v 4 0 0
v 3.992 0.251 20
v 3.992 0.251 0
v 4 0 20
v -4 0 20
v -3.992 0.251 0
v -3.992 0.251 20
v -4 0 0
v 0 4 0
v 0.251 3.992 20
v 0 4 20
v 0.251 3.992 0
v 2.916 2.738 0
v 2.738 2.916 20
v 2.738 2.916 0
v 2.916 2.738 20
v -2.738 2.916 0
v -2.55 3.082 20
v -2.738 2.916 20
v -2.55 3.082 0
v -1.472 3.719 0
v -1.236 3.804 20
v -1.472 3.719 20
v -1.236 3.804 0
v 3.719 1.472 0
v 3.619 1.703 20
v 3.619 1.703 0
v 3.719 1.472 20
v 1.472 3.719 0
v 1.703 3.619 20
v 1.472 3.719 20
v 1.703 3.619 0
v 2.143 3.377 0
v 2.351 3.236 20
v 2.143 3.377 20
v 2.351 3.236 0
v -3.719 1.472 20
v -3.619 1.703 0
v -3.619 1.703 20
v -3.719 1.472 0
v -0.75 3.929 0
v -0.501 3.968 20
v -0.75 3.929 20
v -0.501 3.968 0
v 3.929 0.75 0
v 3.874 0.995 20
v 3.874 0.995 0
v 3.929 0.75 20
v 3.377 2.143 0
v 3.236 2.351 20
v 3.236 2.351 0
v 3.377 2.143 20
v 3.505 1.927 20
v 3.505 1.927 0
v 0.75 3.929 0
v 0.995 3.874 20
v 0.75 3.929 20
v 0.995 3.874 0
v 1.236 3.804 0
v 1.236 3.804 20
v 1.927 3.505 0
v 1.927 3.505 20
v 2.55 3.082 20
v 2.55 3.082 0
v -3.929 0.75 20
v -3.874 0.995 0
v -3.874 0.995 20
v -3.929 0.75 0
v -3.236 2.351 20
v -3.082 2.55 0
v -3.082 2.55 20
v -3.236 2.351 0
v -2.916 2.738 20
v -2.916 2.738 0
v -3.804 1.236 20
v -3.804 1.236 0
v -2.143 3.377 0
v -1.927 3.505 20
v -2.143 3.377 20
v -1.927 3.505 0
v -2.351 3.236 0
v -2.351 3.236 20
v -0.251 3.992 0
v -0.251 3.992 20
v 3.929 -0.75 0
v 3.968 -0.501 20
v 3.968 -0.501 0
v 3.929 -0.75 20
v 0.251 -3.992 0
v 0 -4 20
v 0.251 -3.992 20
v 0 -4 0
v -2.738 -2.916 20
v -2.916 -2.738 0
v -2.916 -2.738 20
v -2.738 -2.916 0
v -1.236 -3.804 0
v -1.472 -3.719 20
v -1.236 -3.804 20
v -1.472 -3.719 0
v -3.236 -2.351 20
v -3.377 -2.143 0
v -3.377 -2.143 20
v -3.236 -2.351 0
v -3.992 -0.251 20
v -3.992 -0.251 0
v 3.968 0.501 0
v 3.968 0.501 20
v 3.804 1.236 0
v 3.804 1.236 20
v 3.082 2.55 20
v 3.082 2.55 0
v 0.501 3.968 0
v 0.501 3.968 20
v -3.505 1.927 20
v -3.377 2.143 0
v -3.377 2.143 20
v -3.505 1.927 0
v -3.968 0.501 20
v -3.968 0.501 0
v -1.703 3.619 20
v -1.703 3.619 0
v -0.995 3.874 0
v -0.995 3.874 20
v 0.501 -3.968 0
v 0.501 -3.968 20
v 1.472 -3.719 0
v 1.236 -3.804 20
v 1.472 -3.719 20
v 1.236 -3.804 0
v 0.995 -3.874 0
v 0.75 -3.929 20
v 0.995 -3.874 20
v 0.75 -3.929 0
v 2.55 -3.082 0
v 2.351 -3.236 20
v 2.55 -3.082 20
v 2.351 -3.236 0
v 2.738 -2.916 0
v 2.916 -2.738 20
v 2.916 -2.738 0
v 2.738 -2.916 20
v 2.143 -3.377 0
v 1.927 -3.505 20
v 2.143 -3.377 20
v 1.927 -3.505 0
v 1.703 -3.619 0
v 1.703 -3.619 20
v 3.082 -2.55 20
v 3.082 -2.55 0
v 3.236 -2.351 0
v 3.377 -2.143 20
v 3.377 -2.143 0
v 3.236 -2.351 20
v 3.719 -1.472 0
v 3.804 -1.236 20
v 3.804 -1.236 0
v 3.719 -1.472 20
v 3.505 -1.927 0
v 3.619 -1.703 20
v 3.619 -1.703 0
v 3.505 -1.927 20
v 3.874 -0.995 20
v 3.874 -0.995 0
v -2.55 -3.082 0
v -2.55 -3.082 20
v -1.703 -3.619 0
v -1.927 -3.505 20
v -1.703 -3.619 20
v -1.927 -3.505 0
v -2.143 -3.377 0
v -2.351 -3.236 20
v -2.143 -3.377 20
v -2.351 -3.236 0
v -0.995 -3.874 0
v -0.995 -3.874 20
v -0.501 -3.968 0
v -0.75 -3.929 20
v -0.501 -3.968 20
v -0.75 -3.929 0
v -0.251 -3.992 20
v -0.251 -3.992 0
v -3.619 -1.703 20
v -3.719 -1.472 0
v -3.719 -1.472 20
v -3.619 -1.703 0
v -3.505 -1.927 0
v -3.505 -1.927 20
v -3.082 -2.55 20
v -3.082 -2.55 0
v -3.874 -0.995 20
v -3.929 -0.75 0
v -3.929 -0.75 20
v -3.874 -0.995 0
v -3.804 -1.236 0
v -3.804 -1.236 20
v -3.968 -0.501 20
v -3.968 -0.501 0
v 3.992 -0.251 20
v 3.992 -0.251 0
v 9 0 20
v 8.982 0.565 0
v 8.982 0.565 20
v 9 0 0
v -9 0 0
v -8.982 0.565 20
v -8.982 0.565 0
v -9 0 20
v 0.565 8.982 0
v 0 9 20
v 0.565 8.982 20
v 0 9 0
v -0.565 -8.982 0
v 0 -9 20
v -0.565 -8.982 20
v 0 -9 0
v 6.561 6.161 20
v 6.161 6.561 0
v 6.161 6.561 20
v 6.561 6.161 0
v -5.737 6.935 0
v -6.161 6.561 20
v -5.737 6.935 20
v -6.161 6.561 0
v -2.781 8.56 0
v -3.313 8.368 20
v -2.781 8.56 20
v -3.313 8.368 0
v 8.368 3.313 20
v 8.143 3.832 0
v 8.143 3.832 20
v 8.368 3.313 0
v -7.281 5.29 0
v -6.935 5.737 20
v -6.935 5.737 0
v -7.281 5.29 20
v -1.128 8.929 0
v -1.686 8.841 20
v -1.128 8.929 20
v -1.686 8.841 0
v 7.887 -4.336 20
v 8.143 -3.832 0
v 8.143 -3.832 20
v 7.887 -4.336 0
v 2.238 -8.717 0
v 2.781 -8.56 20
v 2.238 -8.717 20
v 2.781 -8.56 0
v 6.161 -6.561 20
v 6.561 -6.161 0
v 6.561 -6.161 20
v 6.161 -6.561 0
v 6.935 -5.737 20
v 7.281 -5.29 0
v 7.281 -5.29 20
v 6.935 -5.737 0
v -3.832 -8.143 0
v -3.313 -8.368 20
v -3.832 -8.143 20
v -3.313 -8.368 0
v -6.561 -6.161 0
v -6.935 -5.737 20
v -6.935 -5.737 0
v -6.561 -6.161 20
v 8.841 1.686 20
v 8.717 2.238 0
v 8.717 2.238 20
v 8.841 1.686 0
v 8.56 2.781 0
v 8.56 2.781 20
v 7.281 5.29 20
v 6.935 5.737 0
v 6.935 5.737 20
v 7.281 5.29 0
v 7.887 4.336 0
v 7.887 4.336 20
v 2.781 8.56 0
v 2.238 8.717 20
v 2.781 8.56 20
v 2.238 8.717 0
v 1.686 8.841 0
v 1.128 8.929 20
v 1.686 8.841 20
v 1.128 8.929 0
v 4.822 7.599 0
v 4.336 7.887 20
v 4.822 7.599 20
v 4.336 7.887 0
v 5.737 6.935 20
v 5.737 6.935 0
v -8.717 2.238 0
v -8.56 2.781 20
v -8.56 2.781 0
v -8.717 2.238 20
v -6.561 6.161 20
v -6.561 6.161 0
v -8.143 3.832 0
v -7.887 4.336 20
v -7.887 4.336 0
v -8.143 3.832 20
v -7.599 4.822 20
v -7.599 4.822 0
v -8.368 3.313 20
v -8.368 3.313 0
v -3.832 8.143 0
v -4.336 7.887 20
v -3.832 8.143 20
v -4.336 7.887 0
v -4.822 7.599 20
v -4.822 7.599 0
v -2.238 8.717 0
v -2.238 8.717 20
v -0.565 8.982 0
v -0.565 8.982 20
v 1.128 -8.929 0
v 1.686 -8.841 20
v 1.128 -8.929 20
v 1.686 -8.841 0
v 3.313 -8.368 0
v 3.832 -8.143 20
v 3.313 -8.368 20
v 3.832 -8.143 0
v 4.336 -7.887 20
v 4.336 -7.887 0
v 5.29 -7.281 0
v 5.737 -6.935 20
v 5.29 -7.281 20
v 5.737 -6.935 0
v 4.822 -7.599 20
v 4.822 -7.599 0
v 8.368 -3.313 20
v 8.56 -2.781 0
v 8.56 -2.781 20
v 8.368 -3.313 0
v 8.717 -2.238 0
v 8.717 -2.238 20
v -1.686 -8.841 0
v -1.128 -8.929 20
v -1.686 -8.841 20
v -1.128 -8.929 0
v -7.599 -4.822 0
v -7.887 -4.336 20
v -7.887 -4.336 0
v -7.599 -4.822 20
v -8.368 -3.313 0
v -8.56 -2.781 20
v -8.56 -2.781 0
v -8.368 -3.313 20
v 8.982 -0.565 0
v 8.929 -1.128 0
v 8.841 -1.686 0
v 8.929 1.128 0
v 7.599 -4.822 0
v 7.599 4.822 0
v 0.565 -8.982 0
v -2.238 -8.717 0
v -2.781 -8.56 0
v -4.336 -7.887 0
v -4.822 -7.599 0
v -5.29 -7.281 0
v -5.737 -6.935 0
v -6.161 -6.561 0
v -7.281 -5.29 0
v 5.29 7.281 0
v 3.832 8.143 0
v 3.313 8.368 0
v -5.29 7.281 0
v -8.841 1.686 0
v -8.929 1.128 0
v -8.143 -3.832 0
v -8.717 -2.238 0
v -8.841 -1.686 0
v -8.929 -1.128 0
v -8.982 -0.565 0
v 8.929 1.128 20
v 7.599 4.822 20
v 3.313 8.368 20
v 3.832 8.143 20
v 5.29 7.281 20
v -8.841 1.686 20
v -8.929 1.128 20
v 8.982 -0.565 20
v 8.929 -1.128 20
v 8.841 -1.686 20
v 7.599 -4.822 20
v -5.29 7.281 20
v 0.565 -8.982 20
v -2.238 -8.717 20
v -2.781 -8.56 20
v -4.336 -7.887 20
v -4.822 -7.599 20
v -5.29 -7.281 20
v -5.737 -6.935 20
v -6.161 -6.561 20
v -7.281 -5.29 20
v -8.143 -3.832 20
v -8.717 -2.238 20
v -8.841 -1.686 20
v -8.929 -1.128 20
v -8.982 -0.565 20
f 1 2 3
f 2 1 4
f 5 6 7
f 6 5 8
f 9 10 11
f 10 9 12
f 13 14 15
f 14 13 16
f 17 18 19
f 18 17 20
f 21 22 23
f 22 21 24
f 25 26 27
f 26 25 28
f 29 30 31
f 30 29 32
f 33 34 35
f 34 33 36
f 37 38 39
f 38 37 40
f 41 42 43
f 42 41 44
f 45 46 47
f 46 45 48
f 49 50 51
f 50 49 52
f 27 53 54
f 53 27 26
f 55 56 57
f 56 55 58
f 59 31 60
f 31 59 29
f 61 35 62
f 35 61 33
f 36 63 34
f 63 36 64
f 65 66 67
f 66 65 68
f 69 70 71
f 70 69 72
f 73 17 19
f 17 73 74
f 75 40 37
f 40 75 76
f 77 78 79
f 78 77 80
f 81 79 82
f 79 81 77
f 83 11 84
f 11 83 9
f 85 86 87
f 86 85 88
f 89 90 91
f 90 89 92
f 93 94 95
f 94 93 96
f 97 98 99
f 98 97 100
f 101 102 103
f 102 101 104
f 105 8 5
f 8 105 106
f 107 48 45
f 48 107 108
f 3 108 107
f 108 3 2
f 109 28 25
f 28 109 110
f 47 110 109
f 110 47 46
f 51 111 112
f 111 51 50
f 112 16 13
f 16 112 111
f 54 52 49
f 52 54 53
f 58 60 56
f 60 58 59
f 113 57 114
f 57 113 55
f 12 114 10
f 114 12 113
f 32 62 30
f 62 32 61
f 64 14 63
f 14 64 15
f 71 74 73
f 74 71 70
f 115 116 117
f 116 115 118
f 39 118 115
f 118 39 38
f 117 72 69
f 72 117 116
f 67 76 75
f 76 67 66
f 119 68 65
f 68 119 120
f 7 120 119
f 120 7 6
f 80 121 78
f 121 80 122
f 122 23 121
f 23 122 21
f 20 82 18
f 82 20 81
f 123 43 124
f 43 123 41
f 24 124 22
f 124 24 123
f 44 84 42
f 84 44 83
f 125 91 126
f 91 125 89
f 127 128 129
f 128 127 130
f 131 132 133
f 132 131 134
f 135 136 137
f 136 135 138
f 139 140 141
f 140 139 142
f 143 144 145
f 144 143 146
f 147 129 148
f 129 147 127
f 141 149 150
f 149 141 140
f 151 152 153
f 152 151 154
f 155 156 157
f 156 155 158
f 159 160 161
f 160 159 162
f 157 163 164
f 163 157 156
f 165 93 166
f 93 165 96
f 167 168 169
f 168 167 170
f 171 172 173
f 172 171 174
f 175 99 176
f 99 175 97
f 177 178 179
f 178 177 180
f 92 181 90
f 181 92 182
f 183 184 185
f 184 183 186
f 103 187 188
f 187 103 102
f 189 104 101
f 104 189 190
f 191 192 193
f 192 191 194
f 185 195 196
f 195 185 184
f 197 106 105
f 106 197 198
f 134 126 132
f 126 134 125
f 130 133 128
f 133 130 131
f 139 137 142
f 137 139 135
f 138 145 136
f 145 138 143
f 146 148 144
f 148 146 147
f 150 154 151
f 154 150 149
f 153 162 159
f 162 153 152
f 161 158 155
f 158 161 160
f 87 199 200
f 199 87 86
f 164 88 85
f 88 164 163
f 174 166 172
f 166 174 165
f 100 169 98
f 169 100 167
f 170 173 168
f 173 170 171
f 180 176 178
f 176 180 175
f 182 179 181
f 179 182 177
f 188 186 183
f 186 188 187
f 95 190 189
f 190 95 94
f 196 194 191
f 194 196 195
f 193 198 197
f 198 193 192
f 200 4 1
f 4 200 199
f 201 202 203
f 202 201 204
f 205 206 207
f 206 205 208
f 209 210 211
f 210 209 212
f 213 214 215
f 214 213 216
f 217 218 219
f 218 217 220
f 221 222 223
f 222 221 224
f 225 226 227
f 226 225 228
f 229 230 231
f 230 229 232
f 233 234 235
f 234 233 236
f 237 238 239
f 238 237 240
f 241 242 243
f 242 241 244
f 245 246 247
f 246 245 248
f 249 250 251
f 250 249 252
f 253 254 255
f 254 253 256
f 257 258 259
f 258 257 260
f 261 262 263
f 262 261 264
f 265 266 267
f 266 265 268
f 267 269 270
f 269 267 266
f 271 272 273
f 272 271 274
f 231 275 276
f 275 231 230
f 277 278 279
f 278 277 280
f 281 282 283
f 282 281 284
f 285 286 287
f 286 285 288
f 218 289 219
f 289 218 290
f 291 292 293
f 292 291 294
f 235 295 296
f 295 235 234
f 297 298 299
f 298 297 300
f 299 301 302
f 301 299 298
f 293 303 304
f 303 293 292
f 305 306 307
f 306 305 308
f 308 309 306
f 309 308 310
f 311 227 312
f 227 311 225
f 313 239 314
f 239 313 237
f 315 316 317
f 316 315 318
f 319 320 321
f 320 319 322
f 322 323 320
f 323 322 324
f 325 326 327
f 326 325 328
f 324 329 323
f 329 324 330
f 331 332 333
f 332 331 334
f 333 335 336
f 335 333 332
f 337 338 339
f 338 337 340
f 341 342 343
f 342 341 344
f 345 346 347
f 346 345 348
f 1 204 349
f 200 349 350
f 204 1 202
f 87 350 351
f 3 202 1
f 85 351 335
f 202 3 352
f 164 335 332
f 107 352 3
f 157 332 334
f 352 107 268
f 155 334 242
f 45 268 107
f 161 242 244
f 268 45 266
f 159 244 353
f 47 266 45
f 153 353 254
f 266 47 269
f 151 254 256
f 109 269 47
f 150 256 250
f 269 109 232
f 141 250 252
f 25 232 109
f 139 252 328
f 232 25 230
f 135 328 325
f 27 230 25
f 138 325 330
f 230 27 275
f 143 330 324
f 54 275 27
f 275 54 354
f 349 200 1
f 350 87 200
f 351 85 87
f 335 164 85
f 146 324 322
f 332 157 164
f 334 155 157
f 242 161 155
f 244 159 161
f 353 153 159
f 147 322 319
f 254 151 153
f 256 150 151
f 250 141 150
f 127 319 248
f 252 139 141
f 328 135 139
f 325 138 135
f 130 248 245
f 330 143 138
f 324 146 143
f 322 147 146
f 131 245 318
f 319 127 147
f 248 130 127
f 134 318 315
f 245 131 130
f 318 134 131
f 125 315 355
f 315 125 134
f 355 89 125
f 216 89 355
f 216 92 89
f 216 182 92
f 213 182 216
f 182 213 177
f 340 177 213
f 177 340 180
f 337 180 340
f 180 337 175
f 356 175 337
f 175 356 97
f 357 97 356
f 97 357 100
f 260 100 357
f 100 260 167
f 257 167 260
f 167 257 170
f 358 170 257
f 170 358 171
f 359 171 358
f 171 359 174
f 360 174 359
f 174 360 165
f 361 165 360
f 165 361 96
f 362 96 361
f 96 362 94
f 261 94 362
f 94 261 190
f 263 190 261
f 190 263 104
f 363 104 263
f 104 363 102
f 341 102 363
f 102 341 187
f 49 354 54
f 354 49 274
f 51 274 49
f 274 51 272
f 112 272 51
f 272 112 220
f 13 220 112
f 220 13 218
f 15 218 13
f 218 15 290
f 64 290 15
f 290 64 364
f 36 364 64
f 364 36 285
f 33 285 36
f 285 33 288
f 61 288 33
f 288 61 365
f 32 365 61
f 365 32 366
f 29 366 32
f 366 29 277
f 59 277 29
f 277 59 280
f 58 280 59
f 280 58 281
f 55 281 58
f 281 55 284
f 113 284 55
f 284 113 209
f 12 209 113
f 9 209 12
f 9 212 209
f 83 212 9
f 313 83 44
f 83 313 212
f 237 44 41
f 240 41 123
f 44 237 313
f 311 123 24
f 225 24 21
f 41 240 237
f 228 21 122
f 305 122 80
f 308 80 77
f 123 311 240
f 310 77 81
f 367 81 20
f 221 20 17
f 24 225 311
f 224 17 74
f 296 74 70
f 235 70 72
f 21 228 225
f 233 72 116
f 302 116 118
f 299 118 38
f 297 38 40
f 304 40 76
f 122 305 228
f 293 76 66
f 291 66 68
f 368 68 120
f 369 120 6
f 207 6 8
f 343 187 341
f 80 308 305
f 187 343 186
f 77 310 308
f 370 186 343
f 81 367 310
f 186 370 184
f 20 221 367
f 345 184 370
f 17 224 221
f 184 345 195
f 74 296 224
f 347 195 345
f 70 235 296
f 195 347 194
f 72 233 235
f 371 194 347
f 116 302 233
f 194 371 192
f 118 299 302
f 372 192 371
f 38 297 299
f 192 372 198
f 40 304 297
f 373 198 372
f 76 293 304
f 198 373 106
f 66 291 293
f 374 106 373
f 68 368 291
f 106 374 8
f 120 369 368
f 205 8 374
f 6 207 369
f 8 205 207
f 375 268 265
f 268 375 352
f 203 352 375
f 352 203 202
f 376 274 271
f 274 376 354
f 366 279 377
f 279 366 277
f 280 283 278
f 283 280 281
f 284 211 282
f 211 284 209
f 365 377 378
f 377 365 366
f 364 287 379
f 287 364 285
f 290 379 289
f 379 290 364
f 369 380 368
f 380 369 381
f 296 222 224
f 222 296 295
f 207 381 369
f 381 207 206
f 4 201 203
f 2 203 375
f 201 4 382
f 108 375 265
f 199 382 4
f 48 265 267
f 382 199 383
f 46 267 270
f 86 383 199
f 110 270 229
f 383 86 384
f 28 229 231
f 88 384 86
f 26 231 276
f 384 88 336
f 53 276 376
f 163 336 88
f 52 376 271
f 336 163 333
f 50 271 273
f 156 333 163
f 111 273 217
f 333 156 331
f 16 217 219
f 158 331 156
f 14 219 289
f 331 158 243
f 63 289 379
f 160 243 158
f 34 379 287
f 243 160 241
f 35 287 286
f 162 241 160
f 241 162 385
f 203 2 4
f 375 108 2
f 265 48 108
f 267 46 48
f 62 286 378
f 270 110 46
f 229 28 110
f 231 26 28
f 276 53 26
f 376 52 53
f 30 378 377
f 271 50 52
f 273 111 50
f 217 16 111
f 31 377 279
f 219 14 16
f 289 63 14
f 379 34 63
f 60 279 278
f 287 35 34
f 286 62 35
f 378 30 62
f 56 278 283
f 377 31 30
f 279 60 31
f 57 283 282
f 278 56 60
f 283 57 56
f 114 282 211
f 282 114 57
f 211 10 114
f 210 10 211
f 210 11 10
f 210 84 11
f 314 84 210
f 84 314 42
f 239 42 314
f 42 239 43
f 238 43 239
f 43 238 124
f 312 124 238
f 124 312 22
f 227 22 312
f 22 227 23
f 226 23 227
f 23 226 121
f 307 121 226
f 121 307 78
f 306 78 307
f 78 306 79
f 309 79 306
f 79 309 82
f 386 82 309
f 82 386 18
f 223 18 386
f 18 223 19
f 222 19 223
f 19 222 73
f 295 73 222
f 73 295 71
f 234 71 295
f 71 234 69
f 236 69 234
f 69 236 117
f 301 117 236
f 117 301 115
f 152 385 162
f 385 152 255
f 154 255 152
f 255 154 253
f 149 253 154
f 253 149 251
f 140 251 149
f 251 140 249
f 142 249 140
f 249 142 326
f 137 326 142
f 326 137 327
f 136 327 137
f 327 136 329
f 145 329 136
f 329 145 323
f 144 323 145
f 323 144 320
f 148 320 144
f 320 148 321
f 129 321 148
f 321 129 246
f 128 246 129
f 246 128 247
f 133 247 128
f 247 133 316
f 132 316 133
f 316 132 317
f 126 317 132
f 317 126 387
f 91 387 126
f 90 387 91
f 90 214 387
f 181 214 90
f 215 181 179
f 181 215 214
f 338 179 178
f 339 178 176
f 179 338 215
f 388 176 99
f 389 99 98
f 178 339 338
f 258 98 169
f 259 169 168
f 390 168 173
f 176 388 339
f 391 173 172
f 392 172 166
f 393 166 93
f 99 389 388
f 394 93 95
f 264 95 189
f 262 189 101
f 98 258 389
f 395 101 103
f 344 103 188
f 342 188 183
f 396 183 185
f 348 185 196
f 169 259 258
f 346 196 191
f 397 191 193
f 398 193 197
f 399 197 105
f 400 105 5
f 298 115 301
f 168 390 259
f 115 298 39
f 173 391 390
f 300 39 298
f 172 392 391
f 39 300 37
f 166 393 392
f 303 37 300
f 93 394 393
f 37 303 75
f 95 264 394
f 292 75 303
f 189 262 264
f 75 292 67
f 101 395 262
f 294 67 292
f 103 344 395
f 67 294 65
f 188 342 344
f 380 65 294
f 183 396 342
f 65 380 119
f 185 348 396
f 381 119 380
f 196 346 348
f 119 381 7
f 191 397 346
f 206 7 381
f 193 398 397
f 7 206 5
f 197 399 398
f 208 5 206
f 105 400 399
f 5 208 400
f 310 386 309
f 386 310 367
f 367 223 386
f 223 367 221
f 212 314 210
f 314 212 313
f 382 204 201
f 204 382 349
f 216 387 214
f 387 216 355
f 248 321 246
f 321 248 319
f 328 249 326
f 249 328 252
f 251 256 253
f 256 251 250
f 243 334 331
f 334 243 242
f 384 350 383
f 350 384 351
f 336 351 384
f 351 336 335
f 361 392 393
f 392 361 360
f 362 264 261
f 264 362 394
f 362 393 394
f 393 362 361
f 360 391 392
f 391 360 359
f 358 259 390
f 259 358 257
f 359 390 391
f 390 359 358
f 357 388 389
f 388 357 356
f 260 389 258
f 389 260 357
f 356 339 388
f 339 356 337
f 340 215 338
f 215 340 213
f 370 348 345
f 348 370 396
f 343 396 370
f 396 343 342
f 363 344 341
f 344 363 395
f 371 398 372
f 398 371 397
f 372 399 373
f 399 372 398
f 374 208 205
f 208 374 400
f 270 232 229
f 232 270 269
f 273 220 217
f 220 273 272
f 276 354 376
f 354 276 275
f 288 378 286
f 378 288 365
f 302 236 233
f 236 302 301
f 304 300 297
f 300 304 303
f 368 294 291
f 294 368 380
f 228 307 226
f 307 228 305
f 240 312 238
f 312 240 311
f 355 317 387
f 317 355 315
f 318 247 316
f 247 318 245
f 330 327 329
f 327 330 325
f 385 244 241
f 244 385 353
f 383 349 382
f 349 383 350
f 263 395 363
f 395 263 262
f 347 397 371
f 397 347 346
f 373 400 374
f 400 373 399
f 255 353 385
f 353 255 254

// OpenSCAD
$fn = 100;
motorshaftdia = 8;
connectboltdia = 8;
shaftsurrond = 5;
couplerlegnth = 20;

difference(){
    union(){
        cylinder(r = (motorshaftdia + shaftsurrond * 2)/2, h = couplerlegnth);
    }
    
    union(){
        translate([0,0,-.1]){cylinder(r = motorshaftdia/2, h = couplerlegnth/2 + .1);}
        translate([0,0,couplerlegnth/2-.1]){cylinder(r = connectboltdia/2, h = couplerlegnth/2 + .2);}
    }
}
